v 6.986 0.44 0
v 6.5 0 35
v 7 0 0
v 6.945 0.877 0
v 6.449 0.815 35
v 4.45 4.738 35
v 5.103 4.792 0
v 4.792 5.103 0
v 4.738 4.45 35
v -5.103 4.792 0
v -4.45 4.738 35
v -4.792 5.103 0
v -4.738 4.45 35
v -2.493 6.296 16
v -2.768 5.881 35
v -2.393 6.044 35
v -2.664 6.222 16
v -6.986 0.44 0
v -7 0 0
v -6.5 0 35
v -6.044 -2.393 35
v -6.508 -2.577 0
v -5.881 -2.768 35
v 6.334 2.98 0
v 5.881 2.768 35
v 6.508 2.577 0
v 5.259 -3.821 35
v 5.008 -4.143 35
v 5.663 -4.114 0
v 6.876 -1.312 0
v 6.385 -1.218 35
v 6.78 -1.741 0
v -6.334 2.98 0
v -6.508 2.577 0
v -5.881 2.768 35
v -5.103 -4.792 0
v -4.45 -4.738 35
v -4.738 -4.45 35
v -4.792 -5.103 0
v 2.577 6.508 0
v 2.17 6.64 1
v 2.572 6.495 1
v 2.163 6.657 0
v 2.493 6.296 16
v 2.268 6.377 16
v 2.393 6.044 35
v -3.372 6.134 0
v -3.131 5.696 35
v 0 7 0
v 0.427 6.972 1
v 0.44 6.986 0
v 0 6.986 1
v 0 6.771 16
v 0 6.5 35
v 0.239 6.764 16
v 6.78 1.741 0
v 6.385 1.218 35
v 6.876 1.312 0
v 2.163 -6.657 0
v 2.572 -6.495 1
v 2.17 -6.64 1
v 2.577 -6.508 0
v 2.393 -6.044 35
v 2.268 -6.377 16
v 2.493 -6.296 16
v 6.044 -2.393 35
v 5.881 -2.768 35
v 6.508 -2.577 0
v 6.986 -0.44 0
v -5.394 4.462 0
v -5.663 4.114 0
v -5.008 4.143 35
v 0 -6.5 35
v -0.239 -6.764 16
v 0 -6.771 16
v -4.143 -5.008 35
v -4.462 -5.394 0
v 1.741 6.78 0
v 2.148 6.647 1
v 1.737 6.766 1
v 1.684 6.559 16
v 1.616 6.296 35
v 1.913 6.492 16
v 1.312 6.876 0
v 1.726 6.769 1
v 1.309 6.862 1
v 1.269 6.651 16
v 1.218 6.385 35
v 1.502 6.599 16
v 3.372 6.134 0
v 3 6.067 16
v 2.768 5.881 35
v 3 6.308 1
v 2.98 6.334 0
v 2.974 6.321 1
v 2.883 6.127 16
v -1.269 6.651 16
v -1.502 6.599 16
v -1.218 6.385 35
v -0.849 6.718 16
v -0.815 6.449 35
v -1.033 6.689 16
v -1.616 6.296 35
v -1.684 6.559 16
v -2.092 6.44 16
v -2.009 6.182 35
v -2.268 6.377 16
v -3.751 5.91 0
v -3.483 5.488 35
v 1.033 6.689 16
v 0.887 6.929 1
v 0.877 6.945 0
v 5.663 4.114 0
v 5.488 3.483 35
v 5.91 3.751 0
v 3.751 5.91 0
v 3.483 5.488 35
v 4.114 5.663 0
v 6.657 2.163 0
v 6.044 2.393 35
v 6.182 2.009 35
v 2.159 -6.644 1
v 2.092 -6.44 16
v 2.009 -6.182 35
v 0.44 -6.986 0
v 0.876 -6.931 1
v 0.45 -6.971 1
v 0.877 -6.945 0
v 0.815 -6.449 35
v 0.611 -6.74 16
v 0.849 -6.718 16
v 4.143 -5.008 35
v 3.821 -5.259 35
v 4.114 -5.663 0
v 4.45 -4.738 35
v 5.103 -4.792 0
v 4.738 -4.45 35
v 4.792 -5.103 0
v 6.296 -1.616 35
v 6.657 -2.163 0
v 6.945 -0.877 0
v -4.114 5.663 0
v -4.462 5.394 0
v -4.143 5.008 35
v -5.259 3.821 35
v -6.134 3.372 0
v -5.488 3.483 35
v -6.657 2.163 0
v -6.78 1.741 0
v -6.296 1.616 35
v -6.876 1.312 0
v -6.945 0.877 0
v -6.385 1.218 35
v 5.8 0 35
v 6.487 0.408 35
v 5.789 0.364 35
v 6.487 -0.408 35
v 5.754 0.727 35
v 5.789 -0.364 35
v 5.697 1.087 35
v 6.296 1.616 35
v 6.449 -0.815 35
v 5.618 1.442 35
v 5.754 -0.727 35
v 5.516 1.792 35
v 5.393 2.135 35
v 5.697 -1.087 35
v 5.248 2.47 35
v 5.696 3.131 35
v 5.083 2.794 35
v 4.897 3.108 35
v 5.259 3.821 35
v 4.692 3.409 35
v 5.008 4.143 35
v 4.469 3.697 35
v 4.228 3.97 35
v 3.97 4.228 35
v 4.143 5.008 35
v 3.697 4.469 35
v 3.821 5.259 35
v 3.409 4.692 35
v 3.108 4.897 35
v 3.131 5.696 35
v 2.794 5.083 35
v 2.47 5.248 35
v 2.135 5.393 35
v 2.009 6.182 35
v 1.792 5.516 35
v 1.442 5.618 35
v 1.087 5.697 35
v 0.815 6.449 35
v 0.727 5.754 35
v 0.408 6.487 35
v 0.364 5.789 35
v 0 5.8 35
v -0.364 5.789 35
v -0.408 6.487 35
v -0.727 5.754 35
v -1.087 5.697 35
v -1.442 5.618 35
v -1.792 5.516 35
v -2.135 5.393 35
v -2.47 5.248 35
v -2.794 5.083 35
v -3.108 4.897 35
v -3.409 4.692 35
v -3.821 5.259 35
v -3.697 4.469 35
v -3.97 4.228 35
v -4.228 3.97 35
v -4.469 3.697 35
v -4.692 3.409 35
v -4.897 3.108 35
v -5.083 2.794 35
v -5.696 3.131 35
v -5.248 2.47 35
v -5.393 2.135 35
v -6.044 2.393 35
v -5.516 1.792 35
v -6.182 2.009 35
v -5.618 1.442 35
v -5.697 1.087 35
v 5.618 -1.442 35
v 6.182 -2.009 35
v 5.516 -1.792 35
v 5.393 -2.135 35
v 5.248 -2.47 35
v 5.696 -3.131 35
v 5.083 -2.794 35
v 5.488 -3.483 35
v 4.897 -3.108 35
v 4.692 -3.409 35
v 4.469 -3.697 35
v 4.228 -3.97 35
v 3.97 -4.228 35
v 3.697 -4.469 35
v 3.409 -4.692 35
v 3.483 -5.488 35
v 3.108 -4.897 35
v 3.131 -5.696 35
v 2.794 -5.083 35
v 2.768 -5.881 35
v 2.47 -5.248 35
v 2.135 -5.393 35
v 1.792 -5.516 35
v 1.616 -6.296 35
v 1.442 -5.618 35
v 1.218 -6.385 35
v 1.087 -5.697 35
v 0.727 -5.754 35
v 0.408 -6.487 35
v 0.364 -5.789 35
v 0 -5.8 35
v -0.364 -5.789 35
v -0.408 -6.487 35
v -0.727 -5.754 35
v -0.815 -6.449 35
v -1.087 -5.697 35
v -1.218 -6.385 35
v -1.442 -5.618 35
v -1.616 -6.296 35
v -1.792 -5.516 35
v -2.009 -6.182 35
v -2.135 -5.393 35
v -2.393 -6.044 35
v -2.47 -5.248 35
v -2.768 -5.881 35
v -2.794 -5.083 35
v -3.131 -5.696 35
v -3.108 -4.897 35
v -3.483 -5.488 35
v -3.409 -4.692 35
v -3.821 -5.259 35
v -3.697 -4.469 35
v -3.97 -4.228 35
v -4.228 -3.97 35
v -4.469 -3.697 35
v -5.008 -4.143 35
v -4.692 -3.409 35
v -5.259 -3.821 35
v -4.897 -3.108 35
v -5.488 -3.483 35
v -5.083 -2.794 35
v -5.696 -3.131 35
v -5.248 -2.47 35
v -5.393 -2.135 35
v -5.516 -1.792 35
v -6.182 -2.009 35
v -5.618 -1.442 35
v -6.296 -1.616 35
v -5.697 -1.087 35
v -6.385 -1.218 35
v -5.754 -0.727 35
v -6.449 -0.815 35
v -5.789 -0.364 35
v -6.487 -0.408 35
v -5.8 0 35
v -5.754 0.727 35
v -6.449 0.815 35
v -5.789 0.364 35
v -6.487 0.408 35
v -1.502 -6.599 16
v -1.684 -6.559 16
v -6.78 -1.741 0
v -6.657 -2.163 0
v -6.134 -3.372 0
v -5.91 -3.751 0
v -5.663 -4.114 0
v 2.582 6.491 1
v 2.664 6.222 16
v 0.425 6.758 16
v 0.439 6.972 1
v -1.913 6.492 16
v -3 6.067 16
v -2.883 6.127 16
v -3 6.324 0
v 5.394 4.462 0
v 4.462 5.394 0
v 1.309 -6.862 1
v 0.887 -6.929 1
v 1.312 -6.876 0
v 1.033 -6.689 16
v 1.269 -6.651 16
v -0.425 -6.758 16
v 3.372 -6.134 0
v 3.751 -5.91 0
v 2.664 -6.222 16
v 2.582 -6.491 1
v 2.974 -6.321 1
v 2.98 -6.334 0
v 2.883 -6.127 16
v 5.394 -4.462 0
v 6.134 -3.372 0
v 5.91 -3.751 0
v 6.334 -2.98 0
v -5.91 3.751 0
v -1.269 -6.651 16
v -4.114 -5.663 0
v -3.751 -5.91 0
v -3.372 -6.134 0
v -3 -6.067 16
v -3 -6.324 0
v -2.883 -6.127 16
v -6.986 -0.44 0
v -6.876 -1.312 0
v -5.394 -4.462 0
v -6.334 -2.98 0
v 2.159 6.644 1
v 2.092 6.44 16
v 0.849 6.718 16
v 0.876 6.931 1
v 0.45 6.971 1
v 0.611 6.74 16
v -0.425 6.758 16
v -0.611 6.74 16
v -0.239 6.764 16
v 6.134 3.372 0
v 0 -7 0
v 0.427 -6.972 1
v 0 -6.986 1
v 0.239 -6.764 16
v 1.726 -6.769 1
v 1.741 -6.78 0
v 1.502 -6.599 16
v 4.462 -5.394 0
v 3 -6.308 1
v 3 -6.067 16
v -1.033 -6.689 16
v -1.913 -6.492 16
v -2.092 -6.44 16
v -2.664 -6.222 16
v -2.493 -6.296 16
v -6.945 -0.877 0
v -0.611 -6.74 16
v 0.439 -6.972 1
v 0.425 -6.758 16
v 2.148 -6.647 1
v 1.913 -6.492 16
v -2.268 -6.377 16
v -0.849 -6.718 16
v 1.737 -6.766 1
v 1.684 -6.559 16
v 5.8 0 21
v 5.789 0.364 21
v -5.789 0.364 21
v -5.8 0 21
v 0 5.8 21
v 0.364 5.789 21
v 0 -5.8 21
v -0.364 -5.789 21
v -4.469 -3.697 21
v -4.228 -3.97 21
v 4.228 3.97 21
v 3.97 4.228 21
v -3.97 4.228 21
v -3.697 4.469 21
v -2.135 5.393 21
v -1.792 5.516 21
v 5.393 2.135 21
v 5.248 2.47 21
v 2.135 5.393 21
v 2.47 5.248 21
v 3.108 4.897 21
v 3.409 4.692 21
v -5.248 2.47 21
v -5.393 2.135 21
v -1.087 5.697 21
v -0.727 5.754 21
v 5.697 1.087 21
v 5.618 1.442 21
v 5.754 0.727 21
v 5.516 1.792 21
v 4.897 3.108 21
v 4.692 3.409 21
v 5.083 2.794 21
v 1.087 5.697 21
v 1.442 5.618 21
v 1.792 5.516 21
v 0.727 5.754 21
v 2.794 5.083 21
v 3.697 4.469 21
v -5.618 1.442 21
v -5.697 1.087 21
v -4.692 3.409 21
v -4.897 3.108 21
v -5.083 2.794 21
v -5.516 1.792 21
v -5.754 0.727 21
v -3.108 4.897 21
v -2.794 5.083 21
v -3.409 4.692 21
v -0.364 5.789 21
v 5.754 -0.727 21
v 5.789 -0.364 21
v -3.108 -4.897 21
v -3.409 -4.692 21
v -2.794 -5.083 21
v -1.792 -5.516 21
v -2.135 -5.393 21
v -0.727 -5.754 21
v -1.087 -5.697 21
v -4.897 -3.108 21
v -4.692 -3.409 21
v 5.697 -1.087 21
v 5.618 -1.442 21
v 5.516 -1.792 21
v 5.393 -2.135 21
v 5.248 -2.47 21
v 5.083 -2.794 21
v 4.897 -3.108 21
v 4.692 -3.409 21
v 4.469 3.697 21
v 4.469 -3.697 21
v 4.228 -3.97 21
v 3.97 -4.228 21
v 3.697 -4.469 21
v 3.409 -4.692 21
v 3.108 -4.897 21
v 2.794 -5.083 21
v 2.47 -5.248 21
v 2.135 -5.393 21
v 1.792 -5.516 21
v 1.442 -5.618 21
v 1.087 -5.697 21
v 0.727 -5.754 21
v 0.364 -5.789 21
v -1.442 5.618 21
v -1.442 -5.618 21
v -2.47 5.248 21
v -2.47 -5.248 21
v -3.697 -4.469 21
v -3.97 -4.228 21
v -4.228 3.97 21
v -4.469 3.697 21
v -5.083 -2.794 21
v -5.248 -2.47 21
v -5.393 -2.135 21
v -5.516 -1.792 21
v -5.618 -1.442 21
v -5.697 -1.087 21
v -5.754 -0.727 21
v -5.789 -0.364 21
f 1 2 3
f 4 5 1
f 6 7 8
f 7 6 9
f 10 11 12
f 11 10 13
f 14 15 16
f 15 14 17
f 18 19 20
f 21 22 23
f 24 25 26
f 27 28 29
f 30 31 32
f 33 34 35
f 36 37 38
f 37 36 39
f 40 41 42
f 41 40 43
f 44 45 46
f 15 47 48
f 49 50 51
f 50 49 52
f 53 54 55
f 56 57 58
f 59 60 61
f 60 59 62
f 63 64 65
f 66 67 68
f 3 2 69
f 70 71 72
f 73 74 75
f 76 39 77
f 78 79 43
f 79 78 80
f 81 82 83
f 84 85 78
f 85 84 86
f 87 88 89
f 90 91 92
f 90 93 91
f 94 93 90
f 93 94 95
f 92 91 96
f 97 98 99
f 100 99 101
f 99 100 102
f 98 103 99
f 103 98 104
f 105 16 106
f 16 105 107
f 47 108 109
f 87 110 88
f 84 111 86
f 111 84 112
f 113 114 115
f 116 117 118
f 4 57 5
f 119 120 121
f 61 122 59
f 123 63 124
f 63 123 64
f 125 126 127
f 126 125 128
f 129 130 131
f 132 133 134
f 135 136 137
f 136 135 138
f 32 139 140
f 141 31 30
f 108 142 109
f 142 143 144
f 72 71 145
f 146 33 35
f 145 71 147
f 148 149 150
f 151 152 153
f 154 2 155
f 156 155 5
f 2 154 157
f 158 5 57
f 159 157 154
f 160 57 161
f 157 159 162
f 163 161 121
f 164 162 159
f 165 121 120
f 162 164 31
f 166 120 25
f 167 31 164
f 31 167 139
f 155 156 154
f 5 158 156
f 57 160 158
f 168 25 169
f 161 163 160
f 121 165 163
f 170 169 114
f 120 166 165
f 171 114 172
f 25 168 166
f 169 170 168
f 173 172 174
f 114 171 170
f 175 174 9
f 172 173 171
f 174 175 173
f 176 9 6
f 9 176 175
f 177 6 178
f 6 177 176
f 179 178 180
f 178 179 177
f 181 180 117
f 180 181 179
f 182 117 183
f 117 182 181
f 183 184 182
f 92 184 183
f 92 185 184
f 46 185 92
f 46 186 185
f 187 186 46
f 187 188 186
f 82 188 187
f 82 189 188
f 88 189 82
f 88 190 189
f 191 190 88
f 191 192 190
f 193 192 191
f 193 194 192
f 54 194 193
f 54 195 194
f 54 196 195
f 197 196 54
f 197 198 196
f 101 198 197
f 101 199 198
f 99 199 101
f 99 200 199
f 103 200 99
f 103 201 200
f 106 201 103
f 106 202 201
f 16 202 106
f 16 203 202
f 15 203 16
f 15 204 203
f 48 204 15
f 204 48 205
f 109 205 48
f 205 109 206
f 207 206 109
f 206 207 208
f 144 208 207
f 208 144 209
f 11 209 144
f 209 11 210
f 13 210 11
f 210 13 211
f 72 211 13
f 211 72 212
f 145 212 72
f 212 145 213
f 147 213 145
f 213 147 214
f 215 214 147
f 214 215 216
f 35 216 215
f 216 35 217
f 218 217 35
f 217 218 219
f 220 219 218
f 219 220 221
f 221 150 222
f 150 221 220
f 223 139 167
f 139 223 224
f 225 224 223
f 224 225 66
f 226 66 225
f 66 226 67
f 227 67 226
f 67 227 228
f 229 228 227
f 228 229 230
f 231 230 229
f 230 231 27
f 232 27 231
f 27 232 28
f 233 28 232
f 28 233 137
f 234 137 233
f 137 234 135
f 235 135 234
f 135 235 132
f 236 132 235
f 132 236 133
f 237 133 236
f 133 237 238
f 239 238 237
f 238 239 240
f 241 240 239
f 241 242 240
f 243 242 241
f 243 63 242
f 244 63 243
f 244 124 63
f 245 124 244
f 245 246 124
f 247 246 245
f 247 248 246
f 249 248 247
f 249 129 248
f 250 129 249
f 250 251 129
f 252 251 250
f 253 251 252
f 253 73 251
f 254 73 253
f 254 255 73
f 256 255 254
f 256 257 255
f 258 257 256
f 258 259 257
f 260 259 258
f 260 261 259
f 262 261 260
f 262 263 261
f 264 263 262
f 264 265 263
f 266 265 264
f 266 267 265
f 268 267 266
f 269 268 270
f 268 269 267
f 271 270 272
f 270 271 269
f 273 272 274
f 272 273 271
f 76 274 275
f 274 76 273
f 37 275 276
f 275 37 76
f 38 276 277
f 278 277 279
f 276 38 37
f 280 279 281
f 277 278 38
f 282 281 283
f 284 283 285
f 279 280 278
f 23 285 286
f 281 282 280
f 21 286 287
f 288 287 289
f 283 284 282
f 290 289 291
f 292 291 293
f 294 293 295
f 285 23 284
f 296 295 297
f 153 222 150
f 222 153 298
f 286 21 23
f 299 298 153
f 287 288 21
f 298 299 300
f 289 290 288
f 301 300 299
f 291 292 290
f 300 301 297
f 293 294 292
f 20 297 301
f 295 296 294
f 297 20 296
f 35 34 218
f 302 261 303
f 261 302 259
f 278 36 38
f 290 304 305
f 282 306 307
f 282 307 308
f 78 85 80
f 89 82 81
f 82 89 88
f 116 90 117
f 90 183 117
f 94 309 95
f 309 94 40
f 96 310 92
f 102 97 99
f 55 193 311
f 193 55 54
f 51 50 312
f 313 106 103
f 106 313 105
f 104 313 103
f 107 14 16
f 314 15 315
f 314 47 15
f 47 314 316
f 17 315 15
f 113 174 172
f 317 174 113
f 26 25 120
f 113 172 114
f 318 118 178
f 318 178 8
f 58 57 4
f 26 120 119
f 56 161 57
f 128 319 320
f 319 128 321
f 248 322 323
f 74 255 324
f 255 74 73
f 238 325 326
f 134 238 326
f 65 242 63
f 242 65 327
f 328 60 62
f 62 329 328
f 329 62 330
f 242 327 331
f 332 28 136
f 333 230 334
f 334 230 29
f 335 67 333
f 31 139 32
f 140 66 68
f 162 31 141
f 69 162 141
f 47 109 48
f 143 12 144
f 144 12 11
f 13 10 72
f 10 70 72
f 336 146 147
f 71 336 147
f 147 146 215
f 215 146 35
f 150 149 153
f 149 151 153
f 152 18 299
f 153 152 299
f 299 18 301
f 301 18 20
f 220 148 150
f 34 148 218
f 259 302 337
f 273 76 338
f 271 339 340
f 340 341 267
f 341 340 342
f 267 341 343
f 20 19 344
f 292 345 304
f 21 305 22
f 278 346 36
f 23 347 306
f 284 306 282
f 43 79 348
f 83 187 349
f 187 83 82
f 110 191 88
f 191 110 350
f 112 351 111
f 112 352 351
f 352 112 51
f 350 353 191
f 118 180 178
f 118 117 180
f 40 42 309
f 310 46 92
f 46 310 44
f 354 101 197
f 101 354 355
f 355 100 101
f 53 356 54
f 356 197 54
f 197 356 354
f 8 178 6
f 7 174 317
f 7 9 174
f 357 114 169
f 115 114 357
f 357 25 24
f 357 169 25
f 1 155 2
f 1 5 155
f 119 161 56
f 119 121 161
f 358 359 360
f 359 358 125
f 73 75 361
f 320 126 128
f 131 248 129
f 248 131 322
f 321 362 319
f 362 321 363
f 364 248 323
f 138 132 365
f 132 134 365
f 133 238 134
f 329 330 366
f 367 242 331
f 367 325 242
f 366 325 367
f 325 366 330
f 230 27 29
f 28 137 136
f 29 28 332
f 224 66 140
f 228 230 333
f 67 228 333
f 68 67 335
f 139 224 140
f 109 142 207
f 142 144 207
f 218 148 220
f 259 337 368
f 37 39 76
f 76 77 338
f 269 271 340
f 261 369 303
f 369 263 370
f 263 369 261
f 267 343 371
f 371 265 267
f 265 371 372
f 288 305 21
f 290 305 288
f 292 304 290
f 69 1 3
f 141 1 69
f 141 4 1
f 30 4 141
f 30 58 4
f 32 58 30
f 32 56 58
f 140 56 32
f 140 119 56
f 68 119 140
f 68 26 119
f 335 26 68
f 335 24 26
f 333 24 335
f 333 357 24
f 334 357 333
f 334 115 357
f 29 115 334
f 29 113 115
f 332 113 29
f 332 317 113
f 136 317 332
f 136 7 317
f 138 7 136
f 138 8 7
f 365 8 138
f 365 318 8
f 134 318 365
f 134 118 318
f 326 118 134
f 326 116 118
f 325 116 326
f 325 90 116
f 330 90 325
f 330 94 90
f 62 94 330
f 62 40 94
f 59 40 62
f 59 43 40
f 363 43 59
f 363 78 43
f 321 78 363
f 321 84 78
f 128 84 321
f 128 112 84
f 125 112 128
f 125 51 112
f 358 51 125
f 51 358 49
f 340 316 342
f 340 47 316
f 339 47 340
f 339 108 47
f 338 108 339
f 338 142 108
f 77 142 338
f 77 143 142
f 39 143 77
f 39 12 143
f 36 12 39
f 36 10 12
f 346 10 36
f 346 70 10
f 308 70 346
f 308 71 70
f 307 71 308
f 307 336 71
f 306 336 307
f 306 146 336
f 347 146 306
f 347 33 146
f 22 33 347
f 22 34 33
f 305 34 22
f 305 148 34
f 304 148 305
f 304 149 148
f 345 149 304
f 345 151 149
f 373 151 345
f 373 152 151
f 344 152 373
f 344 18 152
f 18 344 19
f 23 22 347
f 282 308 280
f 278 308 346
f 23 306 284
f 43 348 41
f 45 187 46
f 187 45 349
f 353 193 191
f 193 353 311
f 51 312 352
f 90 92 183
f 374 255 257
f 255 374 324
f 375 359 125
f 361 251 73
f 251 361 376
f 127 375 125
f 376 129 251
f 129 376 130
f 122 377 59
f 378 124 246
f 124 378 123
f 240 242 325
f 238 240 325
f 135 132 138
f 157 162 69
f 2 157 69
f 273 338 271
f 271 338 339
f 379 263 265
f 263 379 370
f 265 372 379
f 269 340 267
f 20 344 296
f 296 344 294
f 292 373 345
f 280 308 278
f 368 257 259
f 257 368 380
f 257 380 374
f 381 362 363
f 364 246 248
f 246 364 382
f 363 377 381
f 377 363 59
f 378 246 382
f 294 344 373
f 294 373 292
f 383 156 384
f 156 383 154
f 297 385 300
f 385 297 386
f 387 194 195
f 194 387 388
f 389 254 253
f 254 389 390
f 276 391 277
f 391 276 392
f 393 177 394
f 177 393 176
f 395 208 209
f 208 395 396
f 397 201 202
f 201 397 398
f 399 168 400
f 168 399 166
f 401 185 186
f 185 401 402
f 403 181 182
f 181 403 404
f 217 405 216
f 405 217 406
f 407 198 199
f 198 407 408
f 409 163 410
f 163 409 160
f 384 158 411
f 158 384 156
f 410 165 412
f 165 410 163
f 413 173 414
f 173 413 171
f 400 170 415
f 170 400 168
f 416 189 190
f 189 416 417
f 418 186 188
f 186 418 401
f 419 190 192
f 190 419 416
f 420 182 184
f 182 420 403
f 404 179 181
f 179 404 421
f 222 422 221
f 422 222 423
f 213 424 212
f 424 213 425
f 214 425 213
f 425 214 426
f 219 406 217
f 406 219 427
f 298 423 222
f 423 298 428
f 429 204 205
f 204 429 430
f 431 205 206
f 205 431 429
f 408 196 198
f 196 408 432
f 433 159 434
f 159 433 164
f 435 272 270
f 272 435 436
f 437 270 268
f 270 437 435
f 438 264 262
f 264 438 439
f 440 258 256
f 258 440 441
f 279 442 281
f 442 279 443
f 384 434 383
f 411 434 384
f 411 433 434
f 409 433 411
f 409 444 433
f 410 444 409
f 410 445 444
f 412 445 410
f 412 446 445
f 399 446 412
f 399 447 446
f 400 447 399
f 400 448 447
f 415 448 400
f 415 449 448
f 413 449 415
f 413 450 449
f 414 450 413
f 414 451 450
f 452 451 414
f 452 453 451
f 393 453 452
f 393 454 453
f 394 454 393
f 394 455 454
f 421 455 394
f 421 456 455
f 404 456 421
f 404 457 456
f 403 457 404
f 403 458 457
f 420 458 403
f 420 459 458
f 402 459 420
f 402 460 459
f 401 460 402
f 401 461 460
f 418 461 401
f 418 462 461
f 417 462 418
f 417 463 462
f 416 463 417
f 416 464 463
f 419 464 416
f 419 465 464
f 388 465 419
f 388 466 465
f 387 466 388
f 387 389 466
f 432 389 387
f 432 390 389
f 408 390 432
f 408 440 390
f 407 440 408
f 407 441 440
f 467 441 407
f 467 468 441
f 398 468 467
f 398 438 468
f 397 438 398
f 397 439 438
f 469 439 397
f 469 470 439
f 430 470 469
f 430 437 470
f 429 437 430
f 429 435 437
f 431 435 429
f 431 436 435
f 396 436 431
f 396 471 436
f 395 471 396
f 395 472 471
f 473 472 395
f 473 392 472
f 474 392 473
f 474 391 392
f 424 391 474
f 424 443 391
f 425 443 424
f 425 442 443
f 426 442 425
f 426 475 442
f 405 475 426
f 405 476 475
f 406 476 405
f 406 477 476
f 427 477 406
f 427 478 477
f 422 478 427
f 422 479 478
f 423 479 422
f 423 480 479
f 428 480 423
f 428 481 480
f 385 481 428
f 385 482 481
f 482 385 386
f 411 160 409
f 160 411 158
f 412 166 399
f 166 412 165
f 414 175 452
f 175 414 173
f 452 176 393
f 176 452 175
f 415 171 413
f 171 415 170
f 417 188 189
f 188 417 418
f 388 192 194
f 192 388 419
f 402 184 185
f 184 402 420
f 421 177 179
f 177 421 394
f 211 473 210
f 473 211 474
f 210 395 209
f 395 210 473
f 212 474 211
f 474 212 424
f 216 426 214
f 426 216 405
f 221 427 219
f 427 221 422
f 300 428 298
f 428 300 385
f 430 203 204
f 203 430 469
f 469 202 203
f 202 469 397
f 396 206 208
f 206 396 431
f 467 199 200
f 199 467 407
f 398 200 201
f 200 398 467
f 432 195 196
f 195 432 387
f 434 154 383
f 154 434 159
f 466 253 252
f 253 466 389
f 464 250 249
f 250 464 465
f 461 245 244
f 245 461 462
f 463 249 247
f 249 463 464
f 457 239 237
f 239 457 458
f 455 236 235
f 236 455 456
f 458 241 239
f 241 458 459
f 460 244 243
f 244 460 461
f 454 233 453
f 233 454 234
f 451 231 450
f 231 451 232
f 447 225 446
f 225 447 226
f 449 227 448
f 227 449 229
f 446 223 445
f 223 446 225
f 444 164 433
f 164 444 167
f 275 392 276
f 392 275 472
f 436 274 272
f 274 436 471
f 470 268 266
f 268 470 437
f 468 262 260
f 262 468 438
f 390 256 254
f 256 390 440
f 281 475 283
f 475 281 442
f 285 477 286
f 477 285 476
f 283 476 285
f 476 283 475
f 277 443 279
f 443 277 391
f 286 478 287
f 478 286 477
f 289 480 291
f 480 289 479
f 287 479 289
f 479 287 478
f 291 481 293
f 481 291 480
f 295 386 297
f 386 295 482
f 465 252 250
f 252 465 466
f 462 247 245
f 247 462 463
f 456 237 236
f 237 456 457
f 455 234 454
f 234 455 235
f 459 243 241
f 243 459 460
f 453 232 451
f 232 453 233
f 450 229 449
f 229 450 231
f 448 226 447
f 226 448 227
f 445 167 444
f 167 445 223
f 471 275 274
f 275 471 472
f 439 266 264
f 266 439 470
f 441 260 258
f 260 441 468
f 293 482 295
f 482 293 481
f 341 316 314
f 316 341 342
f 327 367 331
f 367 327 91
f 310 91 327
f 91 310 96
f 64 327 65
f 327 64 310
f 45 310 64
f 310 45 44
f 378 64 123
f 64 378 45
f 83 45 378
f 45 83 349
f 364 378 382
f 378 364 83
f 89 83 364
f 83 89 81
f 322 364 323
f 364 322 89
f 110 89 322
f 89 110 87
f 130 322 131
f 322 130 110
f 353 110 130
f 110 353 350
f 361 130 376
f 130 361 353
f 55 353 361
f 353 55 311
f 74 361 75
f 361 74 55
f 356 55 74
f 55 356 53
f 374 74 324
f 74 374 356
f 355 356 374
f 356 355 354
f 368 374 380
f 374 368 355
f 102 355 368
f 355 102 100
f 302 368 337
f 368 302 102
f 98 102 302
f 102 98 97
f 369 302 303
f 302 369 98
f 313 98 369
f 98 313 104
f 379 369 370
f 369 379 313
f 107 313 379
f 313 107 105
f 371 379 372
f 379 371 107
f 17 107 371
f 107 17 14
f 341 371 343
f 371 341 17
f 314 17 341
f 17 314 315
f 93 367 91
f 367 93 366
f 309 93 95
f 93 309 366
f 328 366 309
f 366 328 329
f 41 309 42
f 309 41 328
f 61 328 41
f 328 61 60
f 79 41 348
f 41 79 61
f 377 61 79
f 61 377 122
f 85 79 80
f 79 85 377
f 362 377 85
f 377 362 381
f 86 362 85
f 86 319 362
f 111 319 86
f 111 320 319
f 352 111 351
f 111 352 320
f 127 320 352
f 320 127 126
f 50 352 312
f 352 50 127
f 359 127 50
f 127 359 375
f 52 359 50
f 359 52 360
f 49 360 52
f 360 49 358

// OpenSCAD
$fn=100;
difference(){
    cylinder(35,14/2,13/2);
    translate([0,0,21]) cylinder(14,11.6/2,11.6/2);
    translate([-3,-8,1])cube([6,18,15]);
    translate([-3,-7,0])cube([3,14,2]);
}
